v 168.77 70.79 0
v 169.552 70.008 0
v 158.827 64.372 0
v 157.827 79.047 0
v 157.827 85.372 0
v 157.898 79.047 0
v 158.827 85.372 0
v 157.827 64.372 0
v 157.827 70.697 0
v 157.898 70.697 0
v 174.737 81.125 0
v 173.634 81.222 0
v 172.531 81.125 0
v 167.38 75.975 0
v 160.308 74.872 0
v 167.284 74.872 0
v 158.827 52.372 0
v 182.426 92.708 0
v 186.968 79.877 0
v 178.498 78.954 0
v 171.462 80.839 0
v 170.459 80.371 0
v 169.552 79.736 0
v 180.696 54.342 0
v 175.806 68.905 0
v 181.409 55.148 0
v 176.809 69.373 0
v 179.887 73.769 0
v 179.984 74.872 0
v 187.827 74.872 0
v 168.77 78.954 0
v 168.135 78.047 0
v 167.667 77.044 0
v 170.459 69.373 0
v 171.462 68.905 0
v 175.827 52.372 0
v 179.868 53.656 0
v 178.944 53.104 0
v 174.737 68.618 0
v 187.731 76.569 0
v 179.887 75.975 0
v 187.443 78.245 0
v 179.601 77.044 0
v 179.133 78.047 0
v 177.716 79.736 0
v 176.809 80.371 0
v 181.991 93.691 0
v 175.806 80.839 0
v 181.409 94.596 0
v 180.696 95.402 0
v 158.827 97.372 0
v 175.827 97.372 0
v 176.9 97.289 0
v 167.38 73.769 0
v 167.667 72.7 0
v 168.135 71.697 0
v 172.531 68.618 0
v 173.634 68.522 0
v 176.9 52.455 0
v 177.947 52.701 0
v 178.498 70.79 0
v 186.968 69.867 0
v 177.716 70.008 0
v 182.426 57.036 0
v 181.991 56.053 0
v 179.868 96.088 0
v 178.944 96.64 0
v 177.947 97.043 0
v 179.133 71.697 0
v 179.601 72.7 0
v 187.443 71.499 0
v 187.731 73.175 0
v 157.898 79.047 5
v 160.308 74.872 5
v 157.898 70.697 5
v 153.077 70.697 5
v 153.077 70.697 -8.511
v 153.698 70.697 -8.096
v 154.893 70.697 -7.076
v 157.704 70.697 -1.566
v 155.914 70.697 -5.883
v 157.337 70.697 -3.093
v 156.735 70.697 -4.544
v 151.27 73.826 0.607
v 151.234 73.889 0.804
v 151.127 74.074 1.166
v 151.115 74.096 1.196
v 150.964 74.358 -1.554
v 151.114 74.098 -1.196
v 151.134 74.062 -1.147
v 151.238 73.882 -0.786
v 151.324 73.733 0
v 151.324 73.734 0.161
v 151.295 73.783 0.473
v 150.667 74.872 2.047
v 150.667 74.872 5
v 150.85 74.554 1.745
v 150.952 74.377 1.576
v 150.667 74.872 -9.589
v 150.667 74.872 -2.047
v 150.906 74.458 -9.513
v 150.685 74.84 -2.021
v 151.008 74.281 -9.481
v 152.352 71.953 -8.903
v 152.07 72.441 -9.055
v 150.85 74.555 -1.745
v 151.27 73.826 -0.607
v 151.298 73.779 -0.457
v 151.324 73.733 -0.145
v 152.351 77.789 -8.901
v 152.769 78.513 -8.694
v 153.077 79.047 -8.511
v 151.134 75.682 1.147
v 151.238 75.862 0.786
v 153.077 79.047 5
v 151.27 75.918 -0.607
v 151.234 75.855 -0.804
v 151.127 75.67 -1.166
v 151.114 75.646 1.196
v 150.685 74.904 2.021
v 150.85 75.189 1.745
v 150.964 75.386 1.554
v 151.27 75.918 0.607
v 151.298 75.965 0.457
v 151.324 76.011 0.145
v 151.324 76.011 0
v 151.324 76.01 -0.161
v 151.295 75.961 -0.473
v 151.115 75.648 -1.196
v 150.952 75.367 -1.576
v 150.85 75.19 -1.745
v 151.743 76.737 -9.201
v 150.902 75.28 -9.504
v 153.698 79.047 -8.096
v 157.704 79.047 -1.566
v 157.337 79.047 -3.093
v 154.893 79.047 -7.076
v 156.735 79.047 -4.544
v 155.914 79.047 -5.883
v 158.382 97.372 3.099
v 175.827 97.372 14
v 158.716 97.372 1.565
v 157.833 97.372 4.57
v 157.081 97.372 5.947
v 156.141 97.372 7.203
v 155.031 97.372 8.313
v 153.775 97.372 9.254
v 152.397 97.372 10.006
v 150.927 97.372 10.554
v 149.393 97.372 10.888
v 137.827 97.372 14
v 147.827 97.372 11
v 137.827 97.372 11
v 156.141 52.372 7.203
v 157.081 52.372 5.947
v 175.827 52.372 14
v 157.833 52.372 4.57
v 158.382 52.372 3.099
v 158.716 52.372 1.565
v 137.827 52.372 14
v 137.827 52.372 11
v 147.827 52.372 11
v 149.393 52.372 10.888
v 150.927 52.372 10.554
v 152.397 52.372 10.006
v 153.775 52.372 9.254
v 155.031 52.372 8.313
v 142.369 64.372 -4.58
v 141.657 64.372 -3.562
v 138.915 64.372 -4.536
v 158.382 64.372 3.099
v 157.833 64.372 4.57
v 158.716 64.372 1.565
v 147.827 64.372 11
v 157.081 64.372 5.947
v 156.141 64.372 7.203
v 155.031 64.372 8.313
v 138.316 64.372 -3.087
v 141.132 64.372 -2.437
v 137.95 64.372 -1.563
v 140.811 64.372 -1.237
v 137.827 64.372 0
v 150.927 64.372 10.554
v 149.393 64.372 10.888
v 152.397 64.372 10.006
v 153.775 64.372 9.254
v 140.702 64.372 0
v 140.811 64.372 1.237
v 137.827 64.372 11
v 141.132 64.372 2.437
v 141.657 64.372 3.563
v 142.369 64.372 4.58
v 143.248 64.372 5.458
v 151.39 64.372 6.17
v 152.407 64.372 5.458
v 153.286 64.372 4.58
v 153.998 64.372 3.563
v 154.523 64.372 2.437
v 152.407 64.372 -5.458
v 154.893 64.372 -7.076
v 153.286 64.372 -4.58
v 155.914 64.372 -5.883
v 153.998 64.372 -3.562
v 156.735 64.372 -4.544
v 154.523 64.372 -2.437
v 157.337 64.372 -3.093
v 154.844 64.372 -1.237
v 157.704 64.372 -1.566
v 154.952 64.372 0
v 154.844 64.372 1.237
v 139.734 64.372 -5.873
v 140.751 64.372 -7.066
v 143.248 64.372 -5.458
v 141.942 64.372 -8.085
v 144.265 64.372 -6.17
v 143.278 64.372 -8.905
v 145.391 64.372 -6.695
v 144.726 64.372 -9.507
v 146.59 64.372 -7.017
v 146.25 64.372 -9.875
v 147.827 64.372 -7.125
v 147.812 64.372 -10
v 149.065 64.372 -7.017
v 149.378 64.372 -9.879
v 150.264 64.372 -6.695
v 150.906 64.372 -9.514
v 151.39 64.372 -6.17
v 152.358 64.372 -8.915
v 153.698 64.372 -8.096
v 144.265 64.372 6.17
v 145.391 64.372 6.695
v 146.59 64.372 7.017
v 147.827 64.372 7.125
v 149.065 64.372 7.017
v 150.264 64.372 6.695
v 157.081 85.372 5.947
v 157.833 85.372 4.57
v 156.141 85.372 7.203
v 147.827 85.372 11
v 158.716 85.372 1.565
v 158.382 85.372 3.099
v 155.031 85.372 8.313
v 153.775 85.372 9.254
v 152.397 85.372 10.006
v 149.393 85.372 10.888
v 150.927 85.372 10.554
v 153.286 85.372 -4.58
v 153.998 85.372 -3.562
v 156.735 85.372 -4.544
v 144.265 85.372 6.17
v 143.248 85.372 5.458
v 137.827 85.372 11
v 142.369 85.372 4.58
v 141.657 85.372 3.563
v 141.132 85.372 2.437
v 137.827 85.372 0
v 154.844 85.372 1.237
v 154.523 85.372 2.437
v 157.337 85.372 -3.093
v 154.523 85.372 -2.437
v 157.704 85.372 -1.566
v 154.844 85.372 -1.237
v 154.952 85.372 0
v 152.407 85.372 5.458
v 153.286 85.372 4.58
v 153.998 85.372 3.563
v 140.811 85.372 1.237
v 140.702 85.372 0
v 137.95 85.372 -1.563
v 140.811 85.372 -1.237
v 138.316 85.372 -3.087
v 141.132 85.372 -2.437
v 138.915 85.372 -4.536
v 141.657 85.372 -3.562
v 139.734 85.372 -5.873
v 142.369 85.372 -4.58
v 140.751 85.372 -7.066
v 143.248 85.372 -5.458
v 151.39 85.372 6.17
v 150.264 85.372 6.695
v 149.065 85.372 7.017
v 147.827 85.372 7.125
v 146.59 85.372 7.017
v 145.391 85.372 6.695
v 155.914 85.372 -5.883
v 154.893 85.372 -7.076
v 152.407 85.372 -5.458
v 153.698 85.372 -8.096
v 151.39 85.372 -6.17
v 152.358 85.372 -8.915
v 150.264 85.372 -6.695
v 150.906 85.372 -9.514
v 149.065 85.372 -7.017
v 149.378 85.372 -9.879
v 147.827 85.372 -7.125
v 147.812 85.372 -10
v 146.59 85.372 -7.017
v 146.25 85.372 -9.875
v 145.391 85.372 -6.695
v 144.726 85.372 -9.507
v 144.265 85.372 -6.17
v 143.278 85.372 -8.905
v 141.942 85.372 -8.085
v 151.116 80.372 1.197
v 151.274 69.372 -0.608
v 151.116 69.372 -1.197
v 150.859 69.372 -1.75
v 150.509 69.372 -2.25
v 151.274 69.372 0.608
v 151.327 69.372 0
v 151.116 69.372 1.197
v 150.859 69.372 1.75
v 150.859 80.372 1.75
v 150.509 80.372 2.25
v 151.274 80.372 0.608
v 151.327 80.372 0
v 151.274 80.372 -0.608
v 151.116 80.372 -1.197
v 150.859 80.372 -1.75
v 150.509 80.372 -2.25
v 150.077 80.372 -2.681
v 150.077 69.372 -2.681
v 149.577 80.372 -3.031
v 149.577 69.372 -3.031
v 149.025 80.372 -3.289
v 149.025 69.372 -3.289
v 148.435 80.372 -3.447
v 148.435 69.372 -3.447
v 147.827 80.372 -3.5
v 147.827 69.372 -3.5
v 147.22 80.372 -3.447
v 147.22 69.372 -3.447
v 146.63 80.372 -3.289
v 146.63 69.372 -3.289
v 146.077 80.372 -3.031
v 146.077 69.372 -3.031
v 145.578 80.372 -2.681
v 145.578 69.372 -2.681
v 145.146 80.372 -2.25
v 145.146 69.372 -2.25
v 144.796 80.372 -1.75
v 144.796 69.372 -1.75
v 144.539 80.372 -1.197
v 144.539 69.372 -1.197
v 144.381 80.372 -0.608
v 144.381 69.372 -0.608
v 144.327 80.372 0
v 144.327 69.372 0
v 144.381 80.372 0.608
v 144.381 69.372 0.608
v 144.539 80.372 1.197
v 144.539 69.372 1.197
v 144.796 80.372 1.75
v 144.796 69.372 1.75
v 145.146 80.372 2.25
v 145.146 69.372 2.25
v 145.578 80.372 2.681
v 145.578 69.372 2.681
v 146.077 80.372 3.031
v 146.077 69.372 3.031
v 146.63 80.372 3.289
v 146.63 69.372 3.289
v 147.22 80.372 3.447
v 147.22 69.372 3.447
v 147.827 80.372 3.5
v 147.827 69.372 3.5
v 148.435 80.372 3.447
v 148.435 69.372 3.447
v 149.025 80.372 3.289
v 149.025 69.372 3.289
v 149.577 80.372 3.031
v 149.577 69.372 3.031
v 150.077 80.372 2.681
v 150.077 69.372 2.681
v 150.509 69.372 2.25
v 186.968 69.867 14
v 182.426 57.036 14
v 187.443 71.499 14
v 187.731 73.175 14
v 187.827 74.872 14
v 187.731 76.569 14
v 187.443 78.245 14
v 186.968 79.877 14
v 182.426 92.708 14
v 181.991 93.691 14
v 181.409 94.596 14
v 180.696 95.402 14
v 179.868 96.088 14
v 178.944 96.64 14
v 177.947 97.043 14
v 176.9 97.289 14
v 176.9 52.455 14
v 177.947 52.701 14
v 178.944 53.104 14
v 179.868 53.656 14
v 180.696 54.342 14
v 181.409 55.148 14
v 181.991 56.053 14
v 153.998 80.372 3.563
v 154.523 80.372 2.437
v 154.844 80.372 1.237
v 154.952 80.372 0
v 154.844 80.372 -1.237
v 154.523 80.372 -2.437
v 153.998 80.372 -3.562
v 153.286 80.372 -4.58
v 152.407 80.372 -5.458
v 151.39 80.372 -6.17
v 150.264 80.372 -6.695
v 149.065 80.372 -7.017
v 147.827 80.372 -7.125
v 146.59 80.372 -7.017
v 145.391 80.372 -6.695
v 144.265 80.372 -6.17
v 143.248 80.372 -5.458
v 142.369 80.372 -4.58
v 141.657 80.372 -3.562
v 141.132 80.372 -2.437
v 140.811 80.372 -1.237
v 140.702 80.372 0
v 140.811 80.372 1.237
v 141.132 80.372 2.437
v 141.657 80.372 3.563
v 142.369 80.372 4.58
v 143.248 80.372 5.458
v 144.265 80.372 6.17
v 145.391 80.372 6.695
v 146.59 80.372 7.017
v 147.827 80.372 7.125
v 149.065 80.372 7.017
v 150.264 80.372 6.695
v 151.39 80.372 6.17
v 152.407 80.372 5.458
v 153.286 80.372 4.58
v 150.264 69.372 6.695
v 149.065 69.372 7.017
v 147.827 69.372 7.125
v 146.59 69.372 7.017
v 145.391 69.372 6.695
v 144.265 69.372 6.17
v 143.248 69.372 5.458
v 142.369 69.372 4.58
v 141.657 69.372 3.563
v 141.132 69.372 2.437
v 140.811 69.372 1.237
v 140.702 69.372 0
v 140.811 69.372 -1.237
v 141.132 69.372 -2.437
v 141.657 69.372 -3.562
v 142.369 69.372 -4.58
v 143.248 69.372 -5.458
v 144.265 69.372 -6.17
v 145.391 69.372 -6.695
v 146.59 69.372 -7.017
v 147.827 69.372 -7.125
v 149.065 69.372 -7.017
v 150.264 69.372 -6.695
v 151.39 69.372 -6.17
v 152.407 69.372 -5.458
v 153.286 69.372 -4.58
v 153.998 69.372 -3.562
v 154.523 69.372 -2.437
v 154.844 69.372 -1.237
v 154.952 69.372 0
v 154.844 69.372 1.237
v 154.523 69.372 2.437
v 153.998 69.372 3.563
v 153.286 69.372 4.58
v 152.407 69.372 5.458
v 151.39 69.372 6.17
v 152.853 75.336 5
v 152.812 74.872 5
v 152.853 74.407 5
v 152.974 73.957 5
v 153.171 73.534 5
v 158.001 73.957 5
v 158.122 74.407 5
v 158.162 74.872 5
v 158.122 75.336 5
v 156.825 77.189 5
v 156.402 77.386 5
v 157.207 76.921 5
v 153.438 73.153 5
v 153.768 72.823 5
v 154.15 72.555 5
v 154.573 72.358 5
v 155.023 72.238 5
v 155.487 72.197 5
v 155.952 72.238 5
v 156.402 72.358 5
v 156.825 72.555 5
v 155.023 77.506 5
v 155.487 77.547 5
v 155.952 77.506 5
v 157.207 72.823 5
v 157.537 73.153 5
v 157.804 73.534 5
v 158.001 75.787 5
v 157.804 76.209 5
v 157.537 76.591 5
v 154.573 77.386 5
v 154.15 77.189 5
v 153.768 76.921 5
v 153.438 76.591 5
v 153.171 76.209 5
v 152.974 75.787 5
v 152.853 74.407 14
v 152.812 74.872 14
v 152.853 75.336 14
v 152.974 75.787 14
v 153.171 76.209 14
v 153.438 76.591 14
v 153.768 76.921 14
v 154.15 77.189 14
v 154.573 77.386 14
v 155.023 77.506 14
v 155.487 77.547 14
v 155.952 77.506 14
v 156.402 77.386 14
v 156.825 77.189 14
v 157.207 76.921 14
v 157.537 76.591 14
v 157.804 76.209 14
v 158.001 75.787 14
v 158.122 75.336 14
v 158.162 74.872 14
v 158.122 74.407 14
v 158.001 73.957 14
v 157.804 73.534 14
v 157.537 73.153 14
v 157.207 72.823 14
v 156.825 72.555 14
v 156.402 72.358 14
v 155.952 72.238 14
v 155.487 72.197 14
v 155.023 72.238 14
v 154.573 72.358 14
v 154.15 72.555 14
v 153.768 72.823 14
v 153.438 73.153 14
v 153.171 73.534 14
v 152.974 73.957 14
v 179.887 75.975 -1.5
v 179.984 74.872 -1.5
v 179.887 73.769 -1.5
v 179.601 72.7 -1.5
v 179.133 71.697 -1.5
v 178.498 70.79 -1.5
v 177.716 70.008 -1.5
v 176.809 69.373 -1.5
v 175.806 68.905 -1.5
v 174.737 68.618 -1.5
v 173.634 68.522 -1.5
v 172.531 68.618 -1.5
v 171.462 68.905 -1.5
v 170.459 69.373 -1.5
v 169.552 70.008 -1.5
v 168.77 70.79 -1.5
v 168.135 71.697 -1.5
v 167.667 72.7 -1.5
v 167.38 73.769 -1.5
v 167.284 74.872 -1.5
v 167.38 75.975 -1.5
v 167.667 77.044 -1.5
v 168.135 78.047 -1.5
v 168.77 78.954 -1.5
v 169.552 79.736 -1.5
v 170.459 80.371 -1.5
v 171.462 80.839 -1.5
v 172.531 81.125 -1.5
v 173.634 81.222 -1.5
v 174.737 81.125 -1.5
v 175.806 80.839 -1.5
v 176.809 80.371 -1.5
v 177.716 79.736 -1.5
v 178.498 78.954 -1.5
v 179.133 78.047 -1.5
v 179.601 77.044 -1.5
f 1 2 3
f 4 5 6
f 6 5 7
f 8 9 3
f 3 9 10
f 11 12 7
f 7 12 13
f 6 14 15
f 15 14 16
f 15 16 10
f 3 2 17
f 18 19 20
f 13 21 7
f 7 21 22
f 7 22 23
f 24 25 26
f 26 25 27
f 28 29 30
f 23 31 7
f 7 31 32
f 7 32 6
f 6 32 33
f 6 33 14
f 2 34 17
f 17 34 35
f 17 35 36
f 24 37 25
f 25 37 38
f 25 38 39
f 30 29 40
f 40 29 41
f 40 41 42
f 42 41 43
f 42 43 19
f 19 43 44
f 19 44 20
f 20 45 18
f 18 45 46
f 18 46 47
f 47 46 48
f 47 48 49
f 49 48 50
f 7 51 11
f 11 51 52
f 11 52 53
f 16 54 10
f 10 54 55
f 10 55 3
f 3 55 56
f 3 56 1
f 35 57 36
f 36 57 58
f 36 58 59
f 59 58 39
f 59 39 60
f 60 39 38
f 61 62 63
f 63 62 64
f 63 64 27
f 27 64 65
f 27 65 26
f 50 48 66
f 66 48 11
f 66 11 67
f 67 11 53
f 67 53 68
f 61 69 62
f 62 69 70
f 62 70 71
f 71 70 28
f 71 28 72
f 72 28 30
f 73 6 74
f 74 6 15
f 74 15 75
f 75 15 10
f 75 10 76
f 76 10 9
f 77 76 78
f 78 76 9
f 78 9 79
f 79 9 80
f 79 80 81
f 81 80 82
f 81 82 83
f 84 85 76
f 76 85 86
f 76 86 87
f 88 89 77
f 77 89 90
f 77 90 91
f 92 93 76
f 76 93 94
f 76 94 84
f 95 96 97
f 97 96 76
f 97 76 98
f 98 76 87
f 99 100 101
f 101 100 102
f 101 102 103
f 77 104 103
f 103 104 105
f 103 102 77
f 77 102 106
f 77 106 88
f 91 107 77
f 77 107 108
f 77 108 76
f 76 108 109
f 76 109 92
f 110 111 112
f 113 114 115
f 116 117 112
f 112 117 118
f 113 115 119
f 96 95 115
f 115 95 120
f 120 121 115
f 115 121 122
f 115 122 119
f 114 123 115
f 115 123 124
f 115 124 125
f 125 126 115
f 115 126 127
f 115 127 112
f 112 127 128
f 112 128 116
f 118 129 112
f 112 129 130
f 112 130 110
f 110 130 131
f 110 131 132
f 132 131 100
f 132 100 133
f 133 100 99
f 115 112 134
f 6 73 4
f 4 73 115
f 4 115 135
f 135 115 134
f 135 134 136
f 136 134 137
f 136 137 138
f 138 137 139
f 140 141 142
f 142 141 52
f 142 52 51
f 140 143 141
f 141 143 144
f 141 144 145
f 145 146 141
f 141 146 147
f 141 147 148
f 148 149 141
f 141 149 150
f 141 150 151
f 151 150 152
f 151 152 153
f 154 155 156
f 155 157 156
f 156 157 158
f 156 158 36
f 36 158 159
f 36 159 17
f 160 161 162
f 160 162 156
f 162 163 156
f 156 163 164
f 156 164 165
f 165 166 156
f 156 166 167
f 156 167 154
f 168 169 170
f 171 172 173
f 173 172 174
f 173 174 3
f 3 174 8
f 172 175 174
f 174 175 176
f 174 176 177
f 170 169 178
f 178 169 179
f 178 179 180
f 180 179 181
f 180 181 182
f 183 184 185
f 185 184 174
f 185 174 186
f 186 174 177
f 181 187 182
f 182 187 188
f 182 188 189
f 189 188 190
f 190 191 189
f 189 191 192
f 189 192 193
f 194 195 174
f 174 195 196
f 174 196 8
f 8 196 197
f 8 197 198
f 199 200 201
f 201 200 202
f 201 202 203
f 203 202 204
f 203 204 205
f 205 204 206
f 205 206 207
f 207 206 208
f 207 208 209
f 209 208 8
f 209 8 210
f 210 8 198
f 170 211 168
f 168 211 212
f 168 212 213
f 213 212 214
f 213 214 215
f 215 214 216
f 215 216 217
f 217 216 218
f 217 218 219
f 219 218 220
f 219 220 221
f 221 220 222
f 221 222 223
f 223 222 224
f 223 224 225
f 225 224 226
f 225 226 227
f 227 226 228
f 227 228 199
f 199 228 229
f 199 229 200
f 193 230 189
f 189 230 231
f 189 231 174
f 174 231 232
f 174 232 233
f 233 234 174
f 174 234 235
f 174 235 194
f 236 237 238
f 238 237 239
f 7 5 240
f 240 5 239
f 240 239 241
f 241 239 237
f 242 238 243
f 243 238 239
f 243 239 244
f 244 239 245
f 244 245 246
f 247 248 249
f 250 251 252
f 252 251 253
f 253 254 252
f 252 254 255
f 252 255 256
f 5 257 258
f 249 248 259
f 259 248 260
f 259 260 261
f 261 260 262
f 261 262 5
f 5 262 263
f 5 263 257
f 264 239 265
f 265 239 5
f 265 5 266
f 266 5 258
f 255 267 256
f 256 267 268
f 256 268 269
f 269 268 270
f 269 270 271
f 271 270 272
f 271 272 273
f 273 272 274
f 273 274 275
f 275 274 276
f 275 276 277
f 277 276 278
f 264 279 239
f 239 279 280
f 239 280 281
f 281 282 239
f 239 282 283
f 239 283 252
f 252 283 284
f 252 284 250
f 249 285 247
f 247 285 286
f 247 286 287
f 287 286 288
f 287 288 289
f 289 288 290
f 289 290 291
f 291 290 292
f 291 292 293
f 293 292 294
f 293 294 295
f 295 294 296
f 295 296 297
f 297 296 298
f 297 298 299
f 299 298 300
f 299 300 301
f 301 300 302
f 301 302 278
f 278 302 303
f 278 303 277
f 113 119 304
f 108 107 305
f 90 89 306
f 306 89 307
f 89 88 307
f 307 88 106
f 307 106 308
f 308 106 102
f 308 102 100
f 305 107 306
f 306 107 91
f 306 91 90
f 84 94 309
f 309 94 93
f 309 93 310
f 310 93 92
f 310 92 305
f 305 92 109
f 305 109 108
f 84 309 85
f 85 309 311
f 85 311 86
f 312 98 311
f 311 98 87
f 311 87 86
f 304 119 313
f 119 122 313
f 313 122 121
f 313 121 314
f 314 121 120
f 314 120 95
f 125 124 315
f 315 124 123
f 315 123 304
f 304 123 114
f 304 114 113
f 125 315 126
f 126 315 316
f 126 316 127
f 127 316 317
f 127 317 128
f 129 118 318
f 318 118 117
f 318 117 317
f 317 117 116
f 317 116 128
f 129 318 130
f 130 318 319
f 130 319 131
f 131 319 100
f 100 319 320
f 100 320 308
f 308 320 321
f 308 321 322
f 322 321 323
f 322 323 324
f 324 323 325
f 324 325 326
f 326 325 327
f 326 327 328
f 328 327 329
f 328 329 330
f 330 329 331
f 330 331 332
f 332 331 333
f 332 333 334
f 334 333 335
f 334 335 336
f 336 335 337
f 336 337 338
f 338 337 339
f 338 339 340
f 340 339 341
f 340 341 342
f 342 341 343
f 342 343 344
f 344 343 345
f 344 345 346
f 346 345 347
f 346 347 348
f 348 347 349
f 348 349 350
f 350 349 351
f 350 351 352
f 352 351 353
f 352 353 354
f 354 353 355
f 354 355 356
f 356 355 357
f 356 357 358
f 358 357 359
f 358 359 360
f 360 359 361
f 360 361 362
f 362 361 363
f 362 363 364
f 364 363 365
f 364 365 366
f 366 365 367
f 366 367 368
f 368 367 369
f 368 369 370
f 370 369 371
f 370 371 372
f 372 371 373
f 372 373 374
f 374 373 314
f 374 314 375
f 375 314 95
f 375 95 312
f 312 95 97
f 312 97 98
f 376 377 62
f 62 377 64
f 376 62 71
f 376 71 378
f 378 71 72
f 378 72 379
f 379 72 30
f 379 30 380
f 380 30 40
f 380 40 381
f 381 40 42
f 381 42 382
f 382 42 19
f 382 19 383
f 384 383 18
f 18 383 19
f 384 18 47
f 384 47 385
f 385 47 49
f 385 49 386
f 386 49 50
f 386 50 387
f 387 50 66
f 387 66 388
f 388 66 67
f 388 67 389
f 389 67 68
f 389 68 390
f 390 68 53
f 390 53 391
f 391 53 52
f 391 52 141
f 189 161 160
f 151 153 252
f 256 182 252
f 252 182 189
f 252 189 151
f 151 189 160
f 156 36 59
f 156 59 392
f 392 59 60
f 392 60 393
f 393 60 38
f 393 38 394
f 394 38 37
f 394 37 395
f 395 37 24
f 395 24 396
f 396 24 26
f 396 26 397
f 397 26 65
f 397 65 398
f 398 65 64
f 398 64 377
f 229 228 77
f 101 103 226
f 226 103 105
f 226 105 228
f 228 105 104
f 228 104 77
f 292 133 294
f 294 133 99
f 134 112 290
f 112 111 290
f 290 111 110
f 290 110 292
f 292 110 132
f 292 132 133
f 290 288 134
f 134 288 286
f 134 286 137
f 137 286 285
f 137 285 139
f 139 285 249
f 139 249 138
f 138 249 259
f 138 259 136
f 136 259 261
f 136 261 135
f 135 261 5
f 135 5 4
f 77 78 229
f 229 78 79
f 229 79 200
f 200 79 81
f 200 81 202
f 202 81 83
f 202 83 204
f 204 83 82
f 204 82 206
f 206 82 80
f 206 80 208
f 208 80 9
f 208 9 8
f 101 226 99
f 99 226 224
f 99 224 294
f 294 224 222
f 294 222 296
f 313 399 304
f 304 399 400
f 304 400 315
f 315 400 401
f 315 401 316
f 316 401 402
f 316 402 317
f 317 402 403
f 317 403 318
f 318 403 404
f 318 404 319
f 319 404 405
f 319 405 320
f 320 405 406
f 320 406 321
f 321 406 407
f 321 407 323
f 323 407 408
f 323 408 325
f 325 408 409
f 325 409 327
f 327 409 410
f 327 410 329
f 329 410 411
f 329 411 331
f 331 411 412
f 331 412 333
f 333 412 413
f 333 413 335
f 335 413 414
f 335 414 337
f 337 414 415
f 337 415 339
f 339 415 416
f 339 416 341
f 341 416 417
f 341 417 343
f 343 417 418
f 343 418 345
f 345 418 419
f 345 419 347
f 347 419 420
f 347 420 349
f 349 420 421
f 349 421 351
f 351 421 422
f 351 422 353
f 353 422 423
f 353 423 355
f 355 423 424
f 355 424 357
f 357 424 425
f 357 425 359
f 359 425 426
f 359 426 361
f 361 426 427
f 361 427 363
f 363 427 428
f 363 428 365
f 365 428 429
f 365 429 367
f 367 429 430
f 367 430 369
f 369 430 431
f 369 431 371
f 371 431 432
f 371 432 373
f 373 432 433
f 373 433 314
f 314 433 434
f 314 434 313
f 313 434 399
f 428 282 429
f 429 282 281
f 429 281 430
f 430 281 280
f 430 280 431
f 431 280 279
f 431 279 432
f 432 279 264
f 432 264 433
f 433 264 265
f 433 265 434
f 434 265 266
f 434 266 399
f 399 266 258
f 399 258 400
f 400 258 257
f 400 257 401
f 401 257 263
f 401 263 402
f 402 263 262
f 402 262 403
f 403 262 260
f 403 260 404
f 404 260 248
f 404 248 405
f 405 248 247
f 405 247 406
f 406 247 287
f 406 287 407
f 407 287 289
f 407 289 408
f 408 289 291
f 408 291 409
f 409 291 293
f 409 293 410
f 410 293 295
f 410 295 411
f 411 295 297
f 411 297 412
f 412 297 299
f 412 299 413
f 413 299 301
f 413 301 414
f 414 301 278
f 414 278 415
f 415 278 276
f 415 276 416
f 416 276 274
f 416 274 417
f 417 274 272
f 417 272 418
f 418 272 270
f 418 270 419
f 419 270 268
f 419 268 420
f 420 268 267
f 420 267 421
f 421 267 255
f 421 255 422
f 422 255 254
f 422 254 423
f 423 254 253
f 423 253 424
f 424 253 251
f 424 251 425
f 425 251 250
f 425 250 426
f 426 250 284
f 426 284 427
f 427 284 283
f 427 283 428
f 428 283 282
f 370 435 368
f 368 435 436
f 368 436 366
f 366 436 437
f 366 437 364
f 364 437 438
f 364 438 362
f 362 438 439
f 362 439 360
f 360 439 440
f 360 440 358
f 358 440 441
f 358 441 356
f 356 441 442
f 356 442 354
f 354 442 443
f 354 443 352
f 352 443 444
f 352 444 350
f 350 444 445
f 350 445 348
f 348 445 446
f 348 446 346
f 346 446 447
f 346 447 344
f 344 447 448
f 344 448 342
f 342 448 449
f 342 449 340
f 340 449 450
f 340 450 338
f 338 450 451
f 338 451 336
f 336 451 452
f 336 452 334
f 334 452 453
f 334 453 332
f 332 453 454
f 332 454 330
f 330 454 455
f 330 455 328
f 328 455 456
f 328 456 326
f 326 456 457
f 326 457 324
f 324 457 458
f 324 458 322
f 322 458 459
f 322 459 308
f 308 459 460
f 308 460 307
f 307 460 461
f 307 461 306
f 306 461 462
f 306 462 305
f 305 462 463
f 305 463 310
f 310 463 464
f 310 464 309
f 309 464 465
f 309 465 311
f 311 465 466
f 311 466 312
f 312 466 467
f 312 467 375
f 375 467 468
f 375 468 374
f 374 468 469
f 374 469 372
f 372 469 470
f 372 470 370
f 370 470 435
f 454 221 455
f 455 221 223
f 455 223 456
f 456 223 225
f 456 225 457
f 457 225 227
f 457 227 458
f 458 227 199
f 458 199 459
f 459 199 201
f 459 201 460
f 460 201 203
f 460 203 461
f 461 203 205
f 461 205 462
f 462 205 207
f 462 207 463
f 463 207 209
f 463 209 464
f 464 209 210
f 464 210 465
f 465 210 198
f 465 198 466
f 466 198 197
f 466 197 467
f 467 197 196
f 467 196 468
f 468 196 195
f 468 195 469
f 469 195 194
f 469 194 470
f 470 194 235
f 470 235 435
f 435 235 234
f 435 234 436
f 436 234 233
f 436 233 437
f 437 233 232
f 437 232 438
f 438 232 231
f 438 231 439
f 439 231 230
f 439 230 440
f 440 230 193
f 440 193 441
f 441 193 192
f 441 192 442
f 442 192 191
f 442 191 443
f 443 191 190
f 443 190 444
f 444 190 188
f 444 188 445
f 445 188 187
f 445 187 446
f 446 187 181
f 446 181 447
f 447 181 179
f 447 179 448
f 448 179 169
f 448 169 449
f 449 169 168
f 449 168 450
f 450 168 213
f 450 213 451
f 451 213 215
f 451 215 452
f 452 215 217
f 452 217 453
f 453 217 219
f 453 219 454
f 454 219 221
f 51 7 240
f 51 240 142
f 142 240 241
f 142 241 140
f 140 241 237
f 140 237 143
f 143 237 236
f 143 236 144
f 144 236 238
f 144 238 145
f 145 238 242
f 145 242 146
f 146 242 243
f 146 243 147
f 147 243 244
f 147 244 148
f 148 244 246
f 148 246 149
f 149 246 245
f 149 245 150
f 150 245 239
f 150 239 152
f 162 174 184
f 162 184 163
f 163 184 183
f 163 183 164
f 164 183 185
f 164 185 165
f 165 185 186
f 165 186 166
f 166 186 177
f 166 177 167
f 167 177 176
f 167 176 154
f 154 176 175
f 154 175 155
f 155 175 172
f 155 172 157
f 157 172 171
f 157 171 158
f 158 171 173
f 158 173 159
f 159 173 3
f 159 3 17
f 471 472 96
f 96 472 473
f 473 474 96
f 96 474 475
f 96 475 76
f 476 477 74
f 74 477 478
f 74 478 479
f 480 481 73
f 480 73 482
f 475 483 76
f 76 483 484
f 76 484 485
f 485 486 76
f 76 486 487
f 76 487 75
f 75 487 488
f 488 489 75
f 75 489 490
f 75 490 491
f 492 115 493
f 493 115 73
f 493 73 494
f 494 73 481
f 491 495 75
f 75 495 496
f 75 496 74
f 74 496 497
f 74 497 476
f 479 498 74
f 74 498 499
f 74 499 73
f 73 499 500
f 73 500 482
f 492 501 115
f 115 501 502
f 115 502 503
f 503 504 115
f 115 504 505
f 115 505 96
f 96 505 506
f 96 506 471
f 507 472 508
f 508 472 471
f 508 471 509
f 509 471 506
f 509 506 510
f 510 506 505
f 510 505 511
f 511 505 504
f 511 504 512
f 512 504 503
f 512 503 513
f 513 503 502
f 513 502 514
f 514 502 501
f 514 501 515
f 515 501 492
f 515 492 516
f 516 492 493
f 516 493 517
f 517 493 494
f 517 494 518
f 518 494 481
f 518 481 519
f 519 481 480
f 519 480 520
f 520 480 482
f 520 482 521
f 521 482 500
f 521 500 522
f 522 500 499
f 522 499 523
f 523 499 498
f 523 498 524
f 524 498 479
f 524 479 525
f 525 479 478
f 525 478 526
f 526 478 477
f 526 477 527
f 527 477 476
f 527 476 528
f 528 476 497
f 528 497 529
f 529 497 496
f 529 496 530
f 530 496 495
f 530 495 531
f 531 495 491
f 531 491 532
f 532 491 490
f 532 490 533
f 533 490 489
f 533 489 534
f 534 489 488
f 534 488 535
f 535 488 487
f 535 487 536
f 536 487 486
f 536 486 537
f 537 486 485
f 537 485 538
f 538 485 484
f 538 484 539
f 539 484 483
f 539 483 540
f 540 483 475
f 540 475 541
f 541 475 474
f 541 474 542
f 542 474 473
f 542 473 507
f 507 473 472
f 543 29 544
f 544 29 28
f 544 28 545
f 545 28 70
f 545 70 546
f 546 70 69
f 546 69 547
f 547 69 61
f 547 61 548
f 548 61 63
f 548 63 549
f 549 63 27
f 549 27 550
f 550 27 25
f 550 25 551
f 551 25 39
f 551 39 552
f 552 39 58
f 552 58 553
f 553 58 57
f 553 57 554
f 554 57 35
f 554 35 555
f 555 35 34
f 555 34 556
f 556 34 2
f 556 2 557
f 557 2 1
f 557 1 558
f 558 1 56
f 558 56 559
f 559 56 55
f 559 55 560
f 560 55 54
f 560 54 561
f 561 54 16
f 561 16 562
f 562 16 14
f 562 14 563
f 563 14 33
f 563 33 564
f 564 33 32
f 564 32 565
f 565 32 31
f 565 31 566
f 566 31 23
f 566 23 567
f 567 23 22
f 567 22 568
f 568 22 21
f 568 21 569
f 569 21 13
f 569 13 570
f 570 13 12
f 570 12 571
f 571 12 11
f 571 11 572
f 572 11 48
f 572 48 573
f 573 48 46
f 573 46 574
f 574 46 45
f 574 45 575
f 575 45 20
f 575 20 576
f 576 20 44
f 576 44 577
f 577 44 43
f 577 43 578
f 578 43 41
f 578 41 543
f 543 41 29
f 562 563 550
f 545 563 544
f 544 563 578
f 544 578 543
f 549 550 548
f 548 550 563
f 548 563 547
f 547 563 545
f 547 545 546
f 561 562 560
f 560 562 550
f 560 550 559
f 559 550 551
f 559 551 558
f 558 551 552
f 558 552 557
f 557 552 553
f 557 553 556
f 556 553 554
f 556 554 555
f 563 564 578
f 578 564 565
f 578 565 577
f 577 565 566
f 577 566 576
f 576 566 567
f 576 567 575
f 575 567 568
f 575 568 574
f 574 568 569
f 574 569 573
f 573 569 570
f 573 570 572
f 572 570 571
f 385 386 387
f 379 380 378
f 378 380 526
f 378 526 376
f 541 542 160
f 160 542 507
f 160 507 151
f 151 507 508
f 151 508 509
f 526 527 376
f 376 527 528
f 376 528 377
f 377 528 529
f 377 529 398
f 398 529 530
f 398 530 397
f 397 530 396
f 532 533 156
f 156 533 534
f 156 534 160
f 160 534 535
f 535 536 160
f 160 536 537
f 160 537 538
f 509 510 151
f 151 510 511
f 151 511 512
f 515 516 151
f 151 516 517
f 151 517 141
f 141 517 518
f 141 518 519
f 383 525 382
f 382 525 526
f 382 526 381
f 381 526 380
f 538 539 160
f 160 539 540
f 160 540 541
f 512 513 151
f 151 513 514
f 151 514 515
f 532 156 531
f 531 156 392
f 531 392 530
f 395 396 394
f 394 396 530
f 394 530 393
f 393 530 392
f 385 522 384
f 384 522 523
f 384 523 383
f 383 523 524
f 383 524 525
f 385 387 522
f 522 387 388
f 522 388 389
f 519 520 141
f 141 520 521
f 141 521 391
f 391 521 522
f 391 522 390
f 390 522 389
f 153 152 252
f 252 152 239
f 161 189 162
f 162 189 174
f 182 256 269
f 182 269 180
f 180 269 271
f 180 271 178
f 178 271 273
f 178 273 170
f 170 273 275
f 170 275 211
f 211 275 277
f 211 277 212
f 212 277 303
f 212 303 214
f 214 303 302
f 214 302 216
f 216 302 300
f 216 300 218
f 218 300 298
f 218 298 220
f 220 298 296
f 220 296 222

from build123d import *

# Parameters (mm, degrees)
SKETCH1_R            = 2.675
BOSS_EXTRUDE6_DEPTH  = 10
BOSS_EXTRUDE8_START  = -21
BOSS_EXTRUDE8_DEPTH  = 21
SKETCH10_R           = 3.5
CUT_EXTRUDE5_DEPTH   = 191.966382811
SKETCH11_R           = 7.125
CUT_EXTRUDE6_DEPTH   = 5
CUT_EXTRUDE7_START   = -5
SKETCH12_R           = 7.125
CUT_EXTRUDE7_DEPTH   = 5
BOSS_EXTRUDE9_DEPTH  = 5
BOSS_EXTRUDE11_DEPTH = 12
BOSS_EXTRUDE13_START = 12
BOSS_EXTRUDE13_DEPTH = 12
SKETCH18_R           = 6.75
CUT_EXTRUDE11_DEPTH  = 1.67
CUT_EXTRUDE13_DEPTH  = 191.966382811
CUT_EXTRUDE14_DEPTH  = 191.966382811
CUT_EXTRUDE10_DEPTH  = 213.509902322
SKETCH26_R           = 2.675
BOSS_EXTRUDE14_DEPTH = 5
SKETCH27_R           = 2.675
BOSS_EXTRUDE15_DEPTH = 5
SKETCH30_R           = 2.675
CUT_EXTRUDE15_DEPTH  = 10
BOSS_EXTRUDE16_START = 1.67
SKETCH31_R           = 6.75
BOSS_EXTRUDE16_DEPTH = 1.67
SKETCH32_R           = 6.75
BOSS_EXTRUDE17_DEPTH = 2
SKETCH34_R           = 6.35
BOSS_EXTRUDE18_DEPTH = 1.5
SKETCH35_R           = 2.675
BOSS_EXTRUDE19_DEPTH = 4
CUT_EXTRUDE16_DEPTH  = 12
CUT_EXTRUDE17_DEPTH  = 12
FILLET1_R            = 10


with BuildPart() as part:
    # Sketch1 → Boss-Extrude6 (new body)
    with BuildSketch(Plane.XY):
        with BuildLine():
            Line((182.426294195, 92.707675116), (186.967804891, 79.877060143))
            ThreePointArc((186.967804891, 79.877060143), (187.827472336, 74.871963218), (186.967804891, 69.866866293))
            Line((186.967804891, 69.866866293), (182.426294195, 57.03625132))
            ThreePointArc((182.426294195, 57.03625132), (179.86789414, 53.655758914), (175.827472336, 52.371963218))
            Line((175.827472336, 52.371963218), (157.827472336, 52.371963218))
            Line((157.827472336, 52.371963218), (157.827472336, 64.371963218))
            Line((157.827472336, 64.371963218), (137.827472336, 64.371963218))
            Line((137.827472336, 64.371963218), (137.827472336, 85.371963218))
            Line((137.827472336, 85.371963218), (157.827472336, 85.371963218))
            Line((157.827472336, 85.371963218), (157.827472336, 97.371963218))
            Line((157.827472336, 97.371963218), (175.827472336, 97.371963218))
            ThreePointArc((175.827472336, 97.371963218), (179.86789414, 96.088167522), (182.426294195, 92.707675116))
        make_face()
        with Locations((155.487472336, 74.871963218)):
            Circle(SKETCH1_R, mode=Mode.SUBTRACT)
    extrude(amount=BOSS_EXTRUDE6_DEPTH)

    # Sketch9 → Boss-Extrude8 (add)
    with BuildSketch(Plane(origin=(0, 85.371963218, 0), x_dir=(1, 0, 0), z_dir=(0, 1, 0)).offset(BOSS_EXTRUDE8_START)):
        with BuildLine():
            Line((137.827472336, 0), (157.827472336, 0))
            ThreePointArc((157.827472336, 0), (154.893165251, 7.076438626), (147.81227561, 9.999988453))
            Line((147.81227561, 9.999988453), (137.827472336, 9.999988453))
            Line((137.827472336, 9.999988453), (137.827472336, 0))
        make_face()
    extrude(amount=BOSS_EXTRUDE8_DEPTH)

    # Sketch10 → Cut-Extrude5 (cut, through all)
    with BuildSketch(Plane(origin=(0, 85.371963218, 0), x_dir=(1, 0, 0), z_dir=(0, 1, 0))):
        with Locations(Location((147.827472336, 0, 0), (0, 0, 270))):
            Circle(SKETCH10_R)
    extrude(amount=-CUT_EXTRUDE5_DEPTH, mode=Mode.SUBTRACT)

    # Sketch11 → Cut-Extrude6 (cut)
    with BuildSketch(Plane(origin=(0, 85.371963218, 0), x_dir=(1, 0, 0), z_dir=(0, 1, 0))):
        with Locations(Location((147.827472336, 0, 0), (0, 0, 270))):
            Circle(SKETCH11_R)
    extrude(amount=-CUT_EXTRUDE6_DEPTH, mode=Mode.SUBTRACT)

    # Sketch12 → Cut-Extrude7 (cut)
    with BuildSketch(Plane.XZ.offset(-64.371963218).offset(CUT_EXTRUDE7_START)):
        with Locations(Location((147.827472336, 0, 0), (0, 0, 90))):
            Circle(SKETCH12_R)
    extrude(amount=CUT_EXTRUDE7_DEPTH, mode=Mode.SUBTRACT)

    # Sketch15 → Boss-Extrude9 (add)
    with BuildSketch(Plane.XY.offset(10)):
        Polygon((157.89790971, 79.046963218), (153.077034962, 79.046963218), (150.666597588, 74.871963218), (153.077034962, 70.696963218), (157.89790971, 70.696963218), (160.308347084, 74.871963218), align=None)
    extrude(amount=-BOSS_EXTRUDE9_DEPTH)

    # Sketch19 → Boss-Extrude11 (add)
    with BuildSketch(Plane(origin=(0, 85.371963218, 0), x_dir=(1, 0, 0), z_dir=(0, 1, 0))):
        with BuildLine():
            Line((157.827472336, -4.582575695), (157.827472336, -10))
            Line((157.827472336, -10), (152.410048031, -10))
            ThreePointArc((152.410048031, -10), (155.605646929, -7.778174593), (157.827472336, -4.582575695))
        make_face()
    extrude(amount=BOSS_EXTRUDE11_DEPTH)

    # Sketch21 → Boss-Extrude13 (add)
    with BuildSketch(Plane.XZ.offset(-64.371963218).offset(BOSS_EXTRUDE13_START)):
        with BuildLine():
            Line((157.827472336, 4.582575695), (157.827472336, 10))
            Line((157.827472336, 10), (152.410048031, 10))
            ThreePointArc((152.410048031, 10), (155.605646929, 7.778174593), (157.827472336, 4.582575695))
        make_face()
    extrude(amount=-BOSS_EXTRUDE13_DEPTH)

    # Sketch18 → Cut-Extrude11 (cut)
    with BuildSketch(Plane(origin=(0, 0, 0), x_dir=(-1, 0, 0), z_dir=(0, 0, -1))):
        with Locations((-173.633919606, 74.871963218)):
            Circle(SKETCH18_R)
    extrude(amount=-CUT_EXTRUDE11_DEPTH, mode=Mode.SUBTRACT)

    # Sketch23 → Cut-Extrude13 (cut, through all)
    with BuildSketch(Plane.XZ.offset(-64.371963218)):
        with BuildLine():
            Line((157.827472336, 4.582575695), (157.827472336, 0))
            Line((157.827472336, 0), (158.827472336, 0))
            ThreePointArc((158.827472336, 0), (158.574564966, 2.34520788), (157.827472336, 4.582575695))
        make_face()
    extrude(amount=CUT_EXTRUDE13_DEPTH, mode=Mode.SUBTRACT)

    # Sketch24 → Cut-Extrude14 (cut, through all)
    with BuildSketch(Plane(origin=(0, 85.371963218, 0), x_dir=(1, 0, 0), z_dir=(0, 1, 0))):
        with BuildLine():
            Line((157.827472336, -4.582575695), (157.827472336, 0))
            Line((157.827472336, 0), (158.827472336, 0))
            ThreePointArc((158.827472336, 0), (158.574564966, -2.34520788), (157.827472336, -4.582575695))
        make_face()
    extrude(amount=CUT_EXTRUDE14_DEPTH, mode=Mode.SUBTRACT)

    # Sketch14 → Cut-Extrude10 (cut, through all)
    with BuildSketch(Plane.XY.offset(10)):
        Polygon((157.89790971, 79.046963218), (153.077034962, 79.046963218), (150.666597588, 74.871963218), (153.077034962, 70.696963218), (157.89790971, 70.696963218), (160.308347084, 74.871963218), align=None)
    extrude(amount=-CUT_EXTRUDE10_DEPTH, mode=Mode.SUBTRACT)

    # Sketch26 → Boss-Extrude14 (add)
    with BuildSketch(Plane.XY.offset(10)):
        Polygon((153.077034962, 79.046963218), (150.666597588, 74.871963218), (153.077034962, 70.696963218), (157.89790971, 70.696963218), (160.308347084, 74.871963218), (157.89790971, 79.046963218), align=None)
        with Locations((155.487472336, 74.871963218)):
            Circle(SKETCH26_R, mode=Mode.SUBTRACT)
    extrude(amount=-BOSS_EXTRUDE14_DEPTH)

    # Sketch27 → Boss-Extrude15 (add)
    with BuildSketch(Plane.XY.offset(10)):
        with Locations((155.487472336, 74.871963218)):
            Circle(SKETCH27_R)
    extrude(amount=-BOSS_EXTRUDE15_DEPTH)

    # Sketch30 → Cut-Extrude15 (cut)
    with BuildSketch(Plane(origin=(0, 0, 5), x_dir=(-1, 0, 0), z_dir=(0, 0, -1))):
        with Locations((-155.487472336, 74.871963218)):
            Circle(SKETCH30_R)
    extrude(amount=-CUT_EXTRUDE15_DEPTH, mode=Mode.SUBTRACT)

    # Sketch31 → Boss-Extrude16 (add)
    with BuildSketch(Plane(origin=(0, 0, 1.67), x_dir=(-1, 0, 0), z_dir=(0, 0, -1)).offset(BOSS_EXTRUDE16_START)):
        with BuildLine():
            Line((-157.827472336, 85.371963218), (-158.827472336, 85.371963218))
            Line((-158.827472336, 85.371963218), (-158.827472336, 97.371963218))
            Line((-158.827472336, 97.371963218), (-175.827472336, 97.371963218))
            ThreePointArc((-175.827472336, 97.371963218), (-179.86789414, 96.088167522), (-182.426294195, 92.707675116))
            Line((-182.426294195, 92.707675116), (-186.967804891, 79.877060143))
            ThreePointArc((-186.967804891, 79.877060143), (-187.827472336, 74.871963218), (-186.967804891, 69.866866293))
            Line((-186.967804891, 69.866866293), (-182.426294195, 57.03625132))
            ThreePointArc((-182.426294195, 57.03625132), (-179.86789414, 53.655758914), (-175.827472336, 52.371963218))
            Line((-175.827472336, 52.371963218), (-158.827472336, 52.371963218))
            Line((-158.827472336, 52.371963218), (-158.827472336, 64.371963218))
            Line((-158.827472336, 64.371963218), (-157.827472336, 64.371963218))
            Line((-157.827472336, 64.371963218), (-157.827472336, 70.696963218))
            Line((-157.827472336, 70.696963218), (-157.89790971, 70.696963218))
            Line((-157.89790971, 70.696963218), (-160.308347084, 74.871963218))
            Line((-160.308347084, 74.871963218), (-157.89790971, 79.046963218))
            Line((-157.89790971, 79.046963218), (-157.827472336, 79.046963218))
            Line((-157.827472336, 79.046963218), (-157.827472336, 85.371963218))
        make_face()
        with Locations((-173.633919606, 74.871963218)):
            Circle(SKETCH31_R, mode=Mode.SUBTRACT)
    extrude(amount=-BOSS_EXTRUDE16_DEPTH)

    # Sketch32 → Boss-Extrude17 (add)
    with BuildSketch(Plane(origin=(0, 0, 0), x_dir=(-1, 0, 0), z_dir=(0, 0, -1))):
        with Locations((-173.633919606, 74.871963218)):
            Circle(SKETCH32_R)
    extrude(amount=-BOSS_EXTRUDE17_DEPTH)

    # Sketch34 → Boss-Extrude18 (add)
    with BuildSketch(Plane(origin=(0, 0, 0), x_dir=(-1, 0, 0), z_dir=(0, 0, -1))):
        with Locations(Location((-173.633919606, 74.871963218, 0), (0, 0, 180))):
            Circle(SKETCH34_R)
    extrude(amount=BOSS_EXTRUDE18_DEPTH)

    # Sketch35 → Boss-Extrude19 (add)
    with BuildSketch(Plane.XY.offset(10)):
        with BuildLine():
            Line((137.827472336, 85.371963218), (137.827472336, 64.371963218))
            Line((137.827472336, 64.371963218), (137.827472336, 52.371963218))
            Line((137.827472336, 52.371963218), (175.827472336, 52.371963218))
            ThreePointArc((175.827472336, 52.371963218), (179.86789414, 53.655758914), (182.426294195, 57.03625132))
            Line((182.426294195, 57.03625132), (186.967804891, 69.866866293))
            ThreePointArc((186.967804891, 69.866866293), (187.827472336, 74.871963218), (186.967804891, 79.877060143))
            Line((186.967804891, 79.877060143), (182.426294195, 92.707675116))
            ThreePointArc((182.426294195, 92.707675116), (179.86789414, 96.088167522), (175.827472336, 97.371963218))
            Line((175.827472336, 97.371963218), (137.827472336, 97.371963218))
            Line((137.827472336, 97.371963218), (137.827472336, 85.371963218))
        make_face()
        with Locations(Location((155.487472336, 74.871963218, 0), (0, 0, 180))):
            Circle(SKETCH35_R, mode=Mode.SUBTRACT)
    extrude(amount=BOSS_EXTRUDE19_DEPTH)

    # Sketch36 → Cut-Extrude16 (cut)
    with BuildSketch(Plane(origin=(0, 97.371963218, 0), x_dir=(1, 0, 0), z_dir=(0, 1, 0))):
        with BuildLine():
            Line((147.827472336, -11), (137.827472336, -11))
            Line((137.827472336, -11), (137.827472336, -10))
            Line((137.827472336, -10), (152.410048031, -10))
            ThreePointArc((152.410048031, -10), (150.172680216, -10.74709263), (147.827472336, -11))
        make_face()
    extrude(amount=-CUT_EXTRUDE16_DEPTH, mode=Mode.SUBTRACT)

    # Sketch38 → Cut-Extrude17 (cut)
    with BuildSketch(Plane.XZ.offset(-52.371963218)):
        with BuildLine():
            Line((147.827472336, 11), (137.827472336, 11))
            Line((137.827472336, 11), (137.827472336, 10))
            Line((137.827472336, 10), (152.410048031, 10))
            ThreePointArc((152.410048031, 10), (150.172680216, 10.74709263), (147.827472336, 11))
        make_face()
    extrude(amount=-CUT_EXTRUDE17_DEPTH, mode=Mode.SUBTRACT)

    # Fillet1
    # the kernel refuses this fillet: 10 mm, written as the material it takes off along each edge
    with BuildSketch(Plane(origin=(137.827472336, 39.371963218, -9.999988453), x_dir=(0.9999999999993333, 0, -1.1547030050344039e-06), z_dir=(0, 1, 0))) as fillet1_piece_1:
        with BuildLine():
            CenterArc((9.999988453, -10), FILLET1_R, 89.99993384, 90)
            Line((-1.1547e-05, -9.999988453), (-1.000011547, -9.999987298))
            Line((-1.000011547, -9.999987298), (-1, 1.155e-06))
            Line((-1, 1.155e-06), (1.155e-06, 1))
            ThreePointArc((1.155e-06, 1), (9.983284757, 0.999987318), (10.000001155, 1))
            Line((10.000001155, 1), (10, 0))
        make_face()
    extrude(amount=71, mode=Mode.SUBTRACT)


solid = part.part
